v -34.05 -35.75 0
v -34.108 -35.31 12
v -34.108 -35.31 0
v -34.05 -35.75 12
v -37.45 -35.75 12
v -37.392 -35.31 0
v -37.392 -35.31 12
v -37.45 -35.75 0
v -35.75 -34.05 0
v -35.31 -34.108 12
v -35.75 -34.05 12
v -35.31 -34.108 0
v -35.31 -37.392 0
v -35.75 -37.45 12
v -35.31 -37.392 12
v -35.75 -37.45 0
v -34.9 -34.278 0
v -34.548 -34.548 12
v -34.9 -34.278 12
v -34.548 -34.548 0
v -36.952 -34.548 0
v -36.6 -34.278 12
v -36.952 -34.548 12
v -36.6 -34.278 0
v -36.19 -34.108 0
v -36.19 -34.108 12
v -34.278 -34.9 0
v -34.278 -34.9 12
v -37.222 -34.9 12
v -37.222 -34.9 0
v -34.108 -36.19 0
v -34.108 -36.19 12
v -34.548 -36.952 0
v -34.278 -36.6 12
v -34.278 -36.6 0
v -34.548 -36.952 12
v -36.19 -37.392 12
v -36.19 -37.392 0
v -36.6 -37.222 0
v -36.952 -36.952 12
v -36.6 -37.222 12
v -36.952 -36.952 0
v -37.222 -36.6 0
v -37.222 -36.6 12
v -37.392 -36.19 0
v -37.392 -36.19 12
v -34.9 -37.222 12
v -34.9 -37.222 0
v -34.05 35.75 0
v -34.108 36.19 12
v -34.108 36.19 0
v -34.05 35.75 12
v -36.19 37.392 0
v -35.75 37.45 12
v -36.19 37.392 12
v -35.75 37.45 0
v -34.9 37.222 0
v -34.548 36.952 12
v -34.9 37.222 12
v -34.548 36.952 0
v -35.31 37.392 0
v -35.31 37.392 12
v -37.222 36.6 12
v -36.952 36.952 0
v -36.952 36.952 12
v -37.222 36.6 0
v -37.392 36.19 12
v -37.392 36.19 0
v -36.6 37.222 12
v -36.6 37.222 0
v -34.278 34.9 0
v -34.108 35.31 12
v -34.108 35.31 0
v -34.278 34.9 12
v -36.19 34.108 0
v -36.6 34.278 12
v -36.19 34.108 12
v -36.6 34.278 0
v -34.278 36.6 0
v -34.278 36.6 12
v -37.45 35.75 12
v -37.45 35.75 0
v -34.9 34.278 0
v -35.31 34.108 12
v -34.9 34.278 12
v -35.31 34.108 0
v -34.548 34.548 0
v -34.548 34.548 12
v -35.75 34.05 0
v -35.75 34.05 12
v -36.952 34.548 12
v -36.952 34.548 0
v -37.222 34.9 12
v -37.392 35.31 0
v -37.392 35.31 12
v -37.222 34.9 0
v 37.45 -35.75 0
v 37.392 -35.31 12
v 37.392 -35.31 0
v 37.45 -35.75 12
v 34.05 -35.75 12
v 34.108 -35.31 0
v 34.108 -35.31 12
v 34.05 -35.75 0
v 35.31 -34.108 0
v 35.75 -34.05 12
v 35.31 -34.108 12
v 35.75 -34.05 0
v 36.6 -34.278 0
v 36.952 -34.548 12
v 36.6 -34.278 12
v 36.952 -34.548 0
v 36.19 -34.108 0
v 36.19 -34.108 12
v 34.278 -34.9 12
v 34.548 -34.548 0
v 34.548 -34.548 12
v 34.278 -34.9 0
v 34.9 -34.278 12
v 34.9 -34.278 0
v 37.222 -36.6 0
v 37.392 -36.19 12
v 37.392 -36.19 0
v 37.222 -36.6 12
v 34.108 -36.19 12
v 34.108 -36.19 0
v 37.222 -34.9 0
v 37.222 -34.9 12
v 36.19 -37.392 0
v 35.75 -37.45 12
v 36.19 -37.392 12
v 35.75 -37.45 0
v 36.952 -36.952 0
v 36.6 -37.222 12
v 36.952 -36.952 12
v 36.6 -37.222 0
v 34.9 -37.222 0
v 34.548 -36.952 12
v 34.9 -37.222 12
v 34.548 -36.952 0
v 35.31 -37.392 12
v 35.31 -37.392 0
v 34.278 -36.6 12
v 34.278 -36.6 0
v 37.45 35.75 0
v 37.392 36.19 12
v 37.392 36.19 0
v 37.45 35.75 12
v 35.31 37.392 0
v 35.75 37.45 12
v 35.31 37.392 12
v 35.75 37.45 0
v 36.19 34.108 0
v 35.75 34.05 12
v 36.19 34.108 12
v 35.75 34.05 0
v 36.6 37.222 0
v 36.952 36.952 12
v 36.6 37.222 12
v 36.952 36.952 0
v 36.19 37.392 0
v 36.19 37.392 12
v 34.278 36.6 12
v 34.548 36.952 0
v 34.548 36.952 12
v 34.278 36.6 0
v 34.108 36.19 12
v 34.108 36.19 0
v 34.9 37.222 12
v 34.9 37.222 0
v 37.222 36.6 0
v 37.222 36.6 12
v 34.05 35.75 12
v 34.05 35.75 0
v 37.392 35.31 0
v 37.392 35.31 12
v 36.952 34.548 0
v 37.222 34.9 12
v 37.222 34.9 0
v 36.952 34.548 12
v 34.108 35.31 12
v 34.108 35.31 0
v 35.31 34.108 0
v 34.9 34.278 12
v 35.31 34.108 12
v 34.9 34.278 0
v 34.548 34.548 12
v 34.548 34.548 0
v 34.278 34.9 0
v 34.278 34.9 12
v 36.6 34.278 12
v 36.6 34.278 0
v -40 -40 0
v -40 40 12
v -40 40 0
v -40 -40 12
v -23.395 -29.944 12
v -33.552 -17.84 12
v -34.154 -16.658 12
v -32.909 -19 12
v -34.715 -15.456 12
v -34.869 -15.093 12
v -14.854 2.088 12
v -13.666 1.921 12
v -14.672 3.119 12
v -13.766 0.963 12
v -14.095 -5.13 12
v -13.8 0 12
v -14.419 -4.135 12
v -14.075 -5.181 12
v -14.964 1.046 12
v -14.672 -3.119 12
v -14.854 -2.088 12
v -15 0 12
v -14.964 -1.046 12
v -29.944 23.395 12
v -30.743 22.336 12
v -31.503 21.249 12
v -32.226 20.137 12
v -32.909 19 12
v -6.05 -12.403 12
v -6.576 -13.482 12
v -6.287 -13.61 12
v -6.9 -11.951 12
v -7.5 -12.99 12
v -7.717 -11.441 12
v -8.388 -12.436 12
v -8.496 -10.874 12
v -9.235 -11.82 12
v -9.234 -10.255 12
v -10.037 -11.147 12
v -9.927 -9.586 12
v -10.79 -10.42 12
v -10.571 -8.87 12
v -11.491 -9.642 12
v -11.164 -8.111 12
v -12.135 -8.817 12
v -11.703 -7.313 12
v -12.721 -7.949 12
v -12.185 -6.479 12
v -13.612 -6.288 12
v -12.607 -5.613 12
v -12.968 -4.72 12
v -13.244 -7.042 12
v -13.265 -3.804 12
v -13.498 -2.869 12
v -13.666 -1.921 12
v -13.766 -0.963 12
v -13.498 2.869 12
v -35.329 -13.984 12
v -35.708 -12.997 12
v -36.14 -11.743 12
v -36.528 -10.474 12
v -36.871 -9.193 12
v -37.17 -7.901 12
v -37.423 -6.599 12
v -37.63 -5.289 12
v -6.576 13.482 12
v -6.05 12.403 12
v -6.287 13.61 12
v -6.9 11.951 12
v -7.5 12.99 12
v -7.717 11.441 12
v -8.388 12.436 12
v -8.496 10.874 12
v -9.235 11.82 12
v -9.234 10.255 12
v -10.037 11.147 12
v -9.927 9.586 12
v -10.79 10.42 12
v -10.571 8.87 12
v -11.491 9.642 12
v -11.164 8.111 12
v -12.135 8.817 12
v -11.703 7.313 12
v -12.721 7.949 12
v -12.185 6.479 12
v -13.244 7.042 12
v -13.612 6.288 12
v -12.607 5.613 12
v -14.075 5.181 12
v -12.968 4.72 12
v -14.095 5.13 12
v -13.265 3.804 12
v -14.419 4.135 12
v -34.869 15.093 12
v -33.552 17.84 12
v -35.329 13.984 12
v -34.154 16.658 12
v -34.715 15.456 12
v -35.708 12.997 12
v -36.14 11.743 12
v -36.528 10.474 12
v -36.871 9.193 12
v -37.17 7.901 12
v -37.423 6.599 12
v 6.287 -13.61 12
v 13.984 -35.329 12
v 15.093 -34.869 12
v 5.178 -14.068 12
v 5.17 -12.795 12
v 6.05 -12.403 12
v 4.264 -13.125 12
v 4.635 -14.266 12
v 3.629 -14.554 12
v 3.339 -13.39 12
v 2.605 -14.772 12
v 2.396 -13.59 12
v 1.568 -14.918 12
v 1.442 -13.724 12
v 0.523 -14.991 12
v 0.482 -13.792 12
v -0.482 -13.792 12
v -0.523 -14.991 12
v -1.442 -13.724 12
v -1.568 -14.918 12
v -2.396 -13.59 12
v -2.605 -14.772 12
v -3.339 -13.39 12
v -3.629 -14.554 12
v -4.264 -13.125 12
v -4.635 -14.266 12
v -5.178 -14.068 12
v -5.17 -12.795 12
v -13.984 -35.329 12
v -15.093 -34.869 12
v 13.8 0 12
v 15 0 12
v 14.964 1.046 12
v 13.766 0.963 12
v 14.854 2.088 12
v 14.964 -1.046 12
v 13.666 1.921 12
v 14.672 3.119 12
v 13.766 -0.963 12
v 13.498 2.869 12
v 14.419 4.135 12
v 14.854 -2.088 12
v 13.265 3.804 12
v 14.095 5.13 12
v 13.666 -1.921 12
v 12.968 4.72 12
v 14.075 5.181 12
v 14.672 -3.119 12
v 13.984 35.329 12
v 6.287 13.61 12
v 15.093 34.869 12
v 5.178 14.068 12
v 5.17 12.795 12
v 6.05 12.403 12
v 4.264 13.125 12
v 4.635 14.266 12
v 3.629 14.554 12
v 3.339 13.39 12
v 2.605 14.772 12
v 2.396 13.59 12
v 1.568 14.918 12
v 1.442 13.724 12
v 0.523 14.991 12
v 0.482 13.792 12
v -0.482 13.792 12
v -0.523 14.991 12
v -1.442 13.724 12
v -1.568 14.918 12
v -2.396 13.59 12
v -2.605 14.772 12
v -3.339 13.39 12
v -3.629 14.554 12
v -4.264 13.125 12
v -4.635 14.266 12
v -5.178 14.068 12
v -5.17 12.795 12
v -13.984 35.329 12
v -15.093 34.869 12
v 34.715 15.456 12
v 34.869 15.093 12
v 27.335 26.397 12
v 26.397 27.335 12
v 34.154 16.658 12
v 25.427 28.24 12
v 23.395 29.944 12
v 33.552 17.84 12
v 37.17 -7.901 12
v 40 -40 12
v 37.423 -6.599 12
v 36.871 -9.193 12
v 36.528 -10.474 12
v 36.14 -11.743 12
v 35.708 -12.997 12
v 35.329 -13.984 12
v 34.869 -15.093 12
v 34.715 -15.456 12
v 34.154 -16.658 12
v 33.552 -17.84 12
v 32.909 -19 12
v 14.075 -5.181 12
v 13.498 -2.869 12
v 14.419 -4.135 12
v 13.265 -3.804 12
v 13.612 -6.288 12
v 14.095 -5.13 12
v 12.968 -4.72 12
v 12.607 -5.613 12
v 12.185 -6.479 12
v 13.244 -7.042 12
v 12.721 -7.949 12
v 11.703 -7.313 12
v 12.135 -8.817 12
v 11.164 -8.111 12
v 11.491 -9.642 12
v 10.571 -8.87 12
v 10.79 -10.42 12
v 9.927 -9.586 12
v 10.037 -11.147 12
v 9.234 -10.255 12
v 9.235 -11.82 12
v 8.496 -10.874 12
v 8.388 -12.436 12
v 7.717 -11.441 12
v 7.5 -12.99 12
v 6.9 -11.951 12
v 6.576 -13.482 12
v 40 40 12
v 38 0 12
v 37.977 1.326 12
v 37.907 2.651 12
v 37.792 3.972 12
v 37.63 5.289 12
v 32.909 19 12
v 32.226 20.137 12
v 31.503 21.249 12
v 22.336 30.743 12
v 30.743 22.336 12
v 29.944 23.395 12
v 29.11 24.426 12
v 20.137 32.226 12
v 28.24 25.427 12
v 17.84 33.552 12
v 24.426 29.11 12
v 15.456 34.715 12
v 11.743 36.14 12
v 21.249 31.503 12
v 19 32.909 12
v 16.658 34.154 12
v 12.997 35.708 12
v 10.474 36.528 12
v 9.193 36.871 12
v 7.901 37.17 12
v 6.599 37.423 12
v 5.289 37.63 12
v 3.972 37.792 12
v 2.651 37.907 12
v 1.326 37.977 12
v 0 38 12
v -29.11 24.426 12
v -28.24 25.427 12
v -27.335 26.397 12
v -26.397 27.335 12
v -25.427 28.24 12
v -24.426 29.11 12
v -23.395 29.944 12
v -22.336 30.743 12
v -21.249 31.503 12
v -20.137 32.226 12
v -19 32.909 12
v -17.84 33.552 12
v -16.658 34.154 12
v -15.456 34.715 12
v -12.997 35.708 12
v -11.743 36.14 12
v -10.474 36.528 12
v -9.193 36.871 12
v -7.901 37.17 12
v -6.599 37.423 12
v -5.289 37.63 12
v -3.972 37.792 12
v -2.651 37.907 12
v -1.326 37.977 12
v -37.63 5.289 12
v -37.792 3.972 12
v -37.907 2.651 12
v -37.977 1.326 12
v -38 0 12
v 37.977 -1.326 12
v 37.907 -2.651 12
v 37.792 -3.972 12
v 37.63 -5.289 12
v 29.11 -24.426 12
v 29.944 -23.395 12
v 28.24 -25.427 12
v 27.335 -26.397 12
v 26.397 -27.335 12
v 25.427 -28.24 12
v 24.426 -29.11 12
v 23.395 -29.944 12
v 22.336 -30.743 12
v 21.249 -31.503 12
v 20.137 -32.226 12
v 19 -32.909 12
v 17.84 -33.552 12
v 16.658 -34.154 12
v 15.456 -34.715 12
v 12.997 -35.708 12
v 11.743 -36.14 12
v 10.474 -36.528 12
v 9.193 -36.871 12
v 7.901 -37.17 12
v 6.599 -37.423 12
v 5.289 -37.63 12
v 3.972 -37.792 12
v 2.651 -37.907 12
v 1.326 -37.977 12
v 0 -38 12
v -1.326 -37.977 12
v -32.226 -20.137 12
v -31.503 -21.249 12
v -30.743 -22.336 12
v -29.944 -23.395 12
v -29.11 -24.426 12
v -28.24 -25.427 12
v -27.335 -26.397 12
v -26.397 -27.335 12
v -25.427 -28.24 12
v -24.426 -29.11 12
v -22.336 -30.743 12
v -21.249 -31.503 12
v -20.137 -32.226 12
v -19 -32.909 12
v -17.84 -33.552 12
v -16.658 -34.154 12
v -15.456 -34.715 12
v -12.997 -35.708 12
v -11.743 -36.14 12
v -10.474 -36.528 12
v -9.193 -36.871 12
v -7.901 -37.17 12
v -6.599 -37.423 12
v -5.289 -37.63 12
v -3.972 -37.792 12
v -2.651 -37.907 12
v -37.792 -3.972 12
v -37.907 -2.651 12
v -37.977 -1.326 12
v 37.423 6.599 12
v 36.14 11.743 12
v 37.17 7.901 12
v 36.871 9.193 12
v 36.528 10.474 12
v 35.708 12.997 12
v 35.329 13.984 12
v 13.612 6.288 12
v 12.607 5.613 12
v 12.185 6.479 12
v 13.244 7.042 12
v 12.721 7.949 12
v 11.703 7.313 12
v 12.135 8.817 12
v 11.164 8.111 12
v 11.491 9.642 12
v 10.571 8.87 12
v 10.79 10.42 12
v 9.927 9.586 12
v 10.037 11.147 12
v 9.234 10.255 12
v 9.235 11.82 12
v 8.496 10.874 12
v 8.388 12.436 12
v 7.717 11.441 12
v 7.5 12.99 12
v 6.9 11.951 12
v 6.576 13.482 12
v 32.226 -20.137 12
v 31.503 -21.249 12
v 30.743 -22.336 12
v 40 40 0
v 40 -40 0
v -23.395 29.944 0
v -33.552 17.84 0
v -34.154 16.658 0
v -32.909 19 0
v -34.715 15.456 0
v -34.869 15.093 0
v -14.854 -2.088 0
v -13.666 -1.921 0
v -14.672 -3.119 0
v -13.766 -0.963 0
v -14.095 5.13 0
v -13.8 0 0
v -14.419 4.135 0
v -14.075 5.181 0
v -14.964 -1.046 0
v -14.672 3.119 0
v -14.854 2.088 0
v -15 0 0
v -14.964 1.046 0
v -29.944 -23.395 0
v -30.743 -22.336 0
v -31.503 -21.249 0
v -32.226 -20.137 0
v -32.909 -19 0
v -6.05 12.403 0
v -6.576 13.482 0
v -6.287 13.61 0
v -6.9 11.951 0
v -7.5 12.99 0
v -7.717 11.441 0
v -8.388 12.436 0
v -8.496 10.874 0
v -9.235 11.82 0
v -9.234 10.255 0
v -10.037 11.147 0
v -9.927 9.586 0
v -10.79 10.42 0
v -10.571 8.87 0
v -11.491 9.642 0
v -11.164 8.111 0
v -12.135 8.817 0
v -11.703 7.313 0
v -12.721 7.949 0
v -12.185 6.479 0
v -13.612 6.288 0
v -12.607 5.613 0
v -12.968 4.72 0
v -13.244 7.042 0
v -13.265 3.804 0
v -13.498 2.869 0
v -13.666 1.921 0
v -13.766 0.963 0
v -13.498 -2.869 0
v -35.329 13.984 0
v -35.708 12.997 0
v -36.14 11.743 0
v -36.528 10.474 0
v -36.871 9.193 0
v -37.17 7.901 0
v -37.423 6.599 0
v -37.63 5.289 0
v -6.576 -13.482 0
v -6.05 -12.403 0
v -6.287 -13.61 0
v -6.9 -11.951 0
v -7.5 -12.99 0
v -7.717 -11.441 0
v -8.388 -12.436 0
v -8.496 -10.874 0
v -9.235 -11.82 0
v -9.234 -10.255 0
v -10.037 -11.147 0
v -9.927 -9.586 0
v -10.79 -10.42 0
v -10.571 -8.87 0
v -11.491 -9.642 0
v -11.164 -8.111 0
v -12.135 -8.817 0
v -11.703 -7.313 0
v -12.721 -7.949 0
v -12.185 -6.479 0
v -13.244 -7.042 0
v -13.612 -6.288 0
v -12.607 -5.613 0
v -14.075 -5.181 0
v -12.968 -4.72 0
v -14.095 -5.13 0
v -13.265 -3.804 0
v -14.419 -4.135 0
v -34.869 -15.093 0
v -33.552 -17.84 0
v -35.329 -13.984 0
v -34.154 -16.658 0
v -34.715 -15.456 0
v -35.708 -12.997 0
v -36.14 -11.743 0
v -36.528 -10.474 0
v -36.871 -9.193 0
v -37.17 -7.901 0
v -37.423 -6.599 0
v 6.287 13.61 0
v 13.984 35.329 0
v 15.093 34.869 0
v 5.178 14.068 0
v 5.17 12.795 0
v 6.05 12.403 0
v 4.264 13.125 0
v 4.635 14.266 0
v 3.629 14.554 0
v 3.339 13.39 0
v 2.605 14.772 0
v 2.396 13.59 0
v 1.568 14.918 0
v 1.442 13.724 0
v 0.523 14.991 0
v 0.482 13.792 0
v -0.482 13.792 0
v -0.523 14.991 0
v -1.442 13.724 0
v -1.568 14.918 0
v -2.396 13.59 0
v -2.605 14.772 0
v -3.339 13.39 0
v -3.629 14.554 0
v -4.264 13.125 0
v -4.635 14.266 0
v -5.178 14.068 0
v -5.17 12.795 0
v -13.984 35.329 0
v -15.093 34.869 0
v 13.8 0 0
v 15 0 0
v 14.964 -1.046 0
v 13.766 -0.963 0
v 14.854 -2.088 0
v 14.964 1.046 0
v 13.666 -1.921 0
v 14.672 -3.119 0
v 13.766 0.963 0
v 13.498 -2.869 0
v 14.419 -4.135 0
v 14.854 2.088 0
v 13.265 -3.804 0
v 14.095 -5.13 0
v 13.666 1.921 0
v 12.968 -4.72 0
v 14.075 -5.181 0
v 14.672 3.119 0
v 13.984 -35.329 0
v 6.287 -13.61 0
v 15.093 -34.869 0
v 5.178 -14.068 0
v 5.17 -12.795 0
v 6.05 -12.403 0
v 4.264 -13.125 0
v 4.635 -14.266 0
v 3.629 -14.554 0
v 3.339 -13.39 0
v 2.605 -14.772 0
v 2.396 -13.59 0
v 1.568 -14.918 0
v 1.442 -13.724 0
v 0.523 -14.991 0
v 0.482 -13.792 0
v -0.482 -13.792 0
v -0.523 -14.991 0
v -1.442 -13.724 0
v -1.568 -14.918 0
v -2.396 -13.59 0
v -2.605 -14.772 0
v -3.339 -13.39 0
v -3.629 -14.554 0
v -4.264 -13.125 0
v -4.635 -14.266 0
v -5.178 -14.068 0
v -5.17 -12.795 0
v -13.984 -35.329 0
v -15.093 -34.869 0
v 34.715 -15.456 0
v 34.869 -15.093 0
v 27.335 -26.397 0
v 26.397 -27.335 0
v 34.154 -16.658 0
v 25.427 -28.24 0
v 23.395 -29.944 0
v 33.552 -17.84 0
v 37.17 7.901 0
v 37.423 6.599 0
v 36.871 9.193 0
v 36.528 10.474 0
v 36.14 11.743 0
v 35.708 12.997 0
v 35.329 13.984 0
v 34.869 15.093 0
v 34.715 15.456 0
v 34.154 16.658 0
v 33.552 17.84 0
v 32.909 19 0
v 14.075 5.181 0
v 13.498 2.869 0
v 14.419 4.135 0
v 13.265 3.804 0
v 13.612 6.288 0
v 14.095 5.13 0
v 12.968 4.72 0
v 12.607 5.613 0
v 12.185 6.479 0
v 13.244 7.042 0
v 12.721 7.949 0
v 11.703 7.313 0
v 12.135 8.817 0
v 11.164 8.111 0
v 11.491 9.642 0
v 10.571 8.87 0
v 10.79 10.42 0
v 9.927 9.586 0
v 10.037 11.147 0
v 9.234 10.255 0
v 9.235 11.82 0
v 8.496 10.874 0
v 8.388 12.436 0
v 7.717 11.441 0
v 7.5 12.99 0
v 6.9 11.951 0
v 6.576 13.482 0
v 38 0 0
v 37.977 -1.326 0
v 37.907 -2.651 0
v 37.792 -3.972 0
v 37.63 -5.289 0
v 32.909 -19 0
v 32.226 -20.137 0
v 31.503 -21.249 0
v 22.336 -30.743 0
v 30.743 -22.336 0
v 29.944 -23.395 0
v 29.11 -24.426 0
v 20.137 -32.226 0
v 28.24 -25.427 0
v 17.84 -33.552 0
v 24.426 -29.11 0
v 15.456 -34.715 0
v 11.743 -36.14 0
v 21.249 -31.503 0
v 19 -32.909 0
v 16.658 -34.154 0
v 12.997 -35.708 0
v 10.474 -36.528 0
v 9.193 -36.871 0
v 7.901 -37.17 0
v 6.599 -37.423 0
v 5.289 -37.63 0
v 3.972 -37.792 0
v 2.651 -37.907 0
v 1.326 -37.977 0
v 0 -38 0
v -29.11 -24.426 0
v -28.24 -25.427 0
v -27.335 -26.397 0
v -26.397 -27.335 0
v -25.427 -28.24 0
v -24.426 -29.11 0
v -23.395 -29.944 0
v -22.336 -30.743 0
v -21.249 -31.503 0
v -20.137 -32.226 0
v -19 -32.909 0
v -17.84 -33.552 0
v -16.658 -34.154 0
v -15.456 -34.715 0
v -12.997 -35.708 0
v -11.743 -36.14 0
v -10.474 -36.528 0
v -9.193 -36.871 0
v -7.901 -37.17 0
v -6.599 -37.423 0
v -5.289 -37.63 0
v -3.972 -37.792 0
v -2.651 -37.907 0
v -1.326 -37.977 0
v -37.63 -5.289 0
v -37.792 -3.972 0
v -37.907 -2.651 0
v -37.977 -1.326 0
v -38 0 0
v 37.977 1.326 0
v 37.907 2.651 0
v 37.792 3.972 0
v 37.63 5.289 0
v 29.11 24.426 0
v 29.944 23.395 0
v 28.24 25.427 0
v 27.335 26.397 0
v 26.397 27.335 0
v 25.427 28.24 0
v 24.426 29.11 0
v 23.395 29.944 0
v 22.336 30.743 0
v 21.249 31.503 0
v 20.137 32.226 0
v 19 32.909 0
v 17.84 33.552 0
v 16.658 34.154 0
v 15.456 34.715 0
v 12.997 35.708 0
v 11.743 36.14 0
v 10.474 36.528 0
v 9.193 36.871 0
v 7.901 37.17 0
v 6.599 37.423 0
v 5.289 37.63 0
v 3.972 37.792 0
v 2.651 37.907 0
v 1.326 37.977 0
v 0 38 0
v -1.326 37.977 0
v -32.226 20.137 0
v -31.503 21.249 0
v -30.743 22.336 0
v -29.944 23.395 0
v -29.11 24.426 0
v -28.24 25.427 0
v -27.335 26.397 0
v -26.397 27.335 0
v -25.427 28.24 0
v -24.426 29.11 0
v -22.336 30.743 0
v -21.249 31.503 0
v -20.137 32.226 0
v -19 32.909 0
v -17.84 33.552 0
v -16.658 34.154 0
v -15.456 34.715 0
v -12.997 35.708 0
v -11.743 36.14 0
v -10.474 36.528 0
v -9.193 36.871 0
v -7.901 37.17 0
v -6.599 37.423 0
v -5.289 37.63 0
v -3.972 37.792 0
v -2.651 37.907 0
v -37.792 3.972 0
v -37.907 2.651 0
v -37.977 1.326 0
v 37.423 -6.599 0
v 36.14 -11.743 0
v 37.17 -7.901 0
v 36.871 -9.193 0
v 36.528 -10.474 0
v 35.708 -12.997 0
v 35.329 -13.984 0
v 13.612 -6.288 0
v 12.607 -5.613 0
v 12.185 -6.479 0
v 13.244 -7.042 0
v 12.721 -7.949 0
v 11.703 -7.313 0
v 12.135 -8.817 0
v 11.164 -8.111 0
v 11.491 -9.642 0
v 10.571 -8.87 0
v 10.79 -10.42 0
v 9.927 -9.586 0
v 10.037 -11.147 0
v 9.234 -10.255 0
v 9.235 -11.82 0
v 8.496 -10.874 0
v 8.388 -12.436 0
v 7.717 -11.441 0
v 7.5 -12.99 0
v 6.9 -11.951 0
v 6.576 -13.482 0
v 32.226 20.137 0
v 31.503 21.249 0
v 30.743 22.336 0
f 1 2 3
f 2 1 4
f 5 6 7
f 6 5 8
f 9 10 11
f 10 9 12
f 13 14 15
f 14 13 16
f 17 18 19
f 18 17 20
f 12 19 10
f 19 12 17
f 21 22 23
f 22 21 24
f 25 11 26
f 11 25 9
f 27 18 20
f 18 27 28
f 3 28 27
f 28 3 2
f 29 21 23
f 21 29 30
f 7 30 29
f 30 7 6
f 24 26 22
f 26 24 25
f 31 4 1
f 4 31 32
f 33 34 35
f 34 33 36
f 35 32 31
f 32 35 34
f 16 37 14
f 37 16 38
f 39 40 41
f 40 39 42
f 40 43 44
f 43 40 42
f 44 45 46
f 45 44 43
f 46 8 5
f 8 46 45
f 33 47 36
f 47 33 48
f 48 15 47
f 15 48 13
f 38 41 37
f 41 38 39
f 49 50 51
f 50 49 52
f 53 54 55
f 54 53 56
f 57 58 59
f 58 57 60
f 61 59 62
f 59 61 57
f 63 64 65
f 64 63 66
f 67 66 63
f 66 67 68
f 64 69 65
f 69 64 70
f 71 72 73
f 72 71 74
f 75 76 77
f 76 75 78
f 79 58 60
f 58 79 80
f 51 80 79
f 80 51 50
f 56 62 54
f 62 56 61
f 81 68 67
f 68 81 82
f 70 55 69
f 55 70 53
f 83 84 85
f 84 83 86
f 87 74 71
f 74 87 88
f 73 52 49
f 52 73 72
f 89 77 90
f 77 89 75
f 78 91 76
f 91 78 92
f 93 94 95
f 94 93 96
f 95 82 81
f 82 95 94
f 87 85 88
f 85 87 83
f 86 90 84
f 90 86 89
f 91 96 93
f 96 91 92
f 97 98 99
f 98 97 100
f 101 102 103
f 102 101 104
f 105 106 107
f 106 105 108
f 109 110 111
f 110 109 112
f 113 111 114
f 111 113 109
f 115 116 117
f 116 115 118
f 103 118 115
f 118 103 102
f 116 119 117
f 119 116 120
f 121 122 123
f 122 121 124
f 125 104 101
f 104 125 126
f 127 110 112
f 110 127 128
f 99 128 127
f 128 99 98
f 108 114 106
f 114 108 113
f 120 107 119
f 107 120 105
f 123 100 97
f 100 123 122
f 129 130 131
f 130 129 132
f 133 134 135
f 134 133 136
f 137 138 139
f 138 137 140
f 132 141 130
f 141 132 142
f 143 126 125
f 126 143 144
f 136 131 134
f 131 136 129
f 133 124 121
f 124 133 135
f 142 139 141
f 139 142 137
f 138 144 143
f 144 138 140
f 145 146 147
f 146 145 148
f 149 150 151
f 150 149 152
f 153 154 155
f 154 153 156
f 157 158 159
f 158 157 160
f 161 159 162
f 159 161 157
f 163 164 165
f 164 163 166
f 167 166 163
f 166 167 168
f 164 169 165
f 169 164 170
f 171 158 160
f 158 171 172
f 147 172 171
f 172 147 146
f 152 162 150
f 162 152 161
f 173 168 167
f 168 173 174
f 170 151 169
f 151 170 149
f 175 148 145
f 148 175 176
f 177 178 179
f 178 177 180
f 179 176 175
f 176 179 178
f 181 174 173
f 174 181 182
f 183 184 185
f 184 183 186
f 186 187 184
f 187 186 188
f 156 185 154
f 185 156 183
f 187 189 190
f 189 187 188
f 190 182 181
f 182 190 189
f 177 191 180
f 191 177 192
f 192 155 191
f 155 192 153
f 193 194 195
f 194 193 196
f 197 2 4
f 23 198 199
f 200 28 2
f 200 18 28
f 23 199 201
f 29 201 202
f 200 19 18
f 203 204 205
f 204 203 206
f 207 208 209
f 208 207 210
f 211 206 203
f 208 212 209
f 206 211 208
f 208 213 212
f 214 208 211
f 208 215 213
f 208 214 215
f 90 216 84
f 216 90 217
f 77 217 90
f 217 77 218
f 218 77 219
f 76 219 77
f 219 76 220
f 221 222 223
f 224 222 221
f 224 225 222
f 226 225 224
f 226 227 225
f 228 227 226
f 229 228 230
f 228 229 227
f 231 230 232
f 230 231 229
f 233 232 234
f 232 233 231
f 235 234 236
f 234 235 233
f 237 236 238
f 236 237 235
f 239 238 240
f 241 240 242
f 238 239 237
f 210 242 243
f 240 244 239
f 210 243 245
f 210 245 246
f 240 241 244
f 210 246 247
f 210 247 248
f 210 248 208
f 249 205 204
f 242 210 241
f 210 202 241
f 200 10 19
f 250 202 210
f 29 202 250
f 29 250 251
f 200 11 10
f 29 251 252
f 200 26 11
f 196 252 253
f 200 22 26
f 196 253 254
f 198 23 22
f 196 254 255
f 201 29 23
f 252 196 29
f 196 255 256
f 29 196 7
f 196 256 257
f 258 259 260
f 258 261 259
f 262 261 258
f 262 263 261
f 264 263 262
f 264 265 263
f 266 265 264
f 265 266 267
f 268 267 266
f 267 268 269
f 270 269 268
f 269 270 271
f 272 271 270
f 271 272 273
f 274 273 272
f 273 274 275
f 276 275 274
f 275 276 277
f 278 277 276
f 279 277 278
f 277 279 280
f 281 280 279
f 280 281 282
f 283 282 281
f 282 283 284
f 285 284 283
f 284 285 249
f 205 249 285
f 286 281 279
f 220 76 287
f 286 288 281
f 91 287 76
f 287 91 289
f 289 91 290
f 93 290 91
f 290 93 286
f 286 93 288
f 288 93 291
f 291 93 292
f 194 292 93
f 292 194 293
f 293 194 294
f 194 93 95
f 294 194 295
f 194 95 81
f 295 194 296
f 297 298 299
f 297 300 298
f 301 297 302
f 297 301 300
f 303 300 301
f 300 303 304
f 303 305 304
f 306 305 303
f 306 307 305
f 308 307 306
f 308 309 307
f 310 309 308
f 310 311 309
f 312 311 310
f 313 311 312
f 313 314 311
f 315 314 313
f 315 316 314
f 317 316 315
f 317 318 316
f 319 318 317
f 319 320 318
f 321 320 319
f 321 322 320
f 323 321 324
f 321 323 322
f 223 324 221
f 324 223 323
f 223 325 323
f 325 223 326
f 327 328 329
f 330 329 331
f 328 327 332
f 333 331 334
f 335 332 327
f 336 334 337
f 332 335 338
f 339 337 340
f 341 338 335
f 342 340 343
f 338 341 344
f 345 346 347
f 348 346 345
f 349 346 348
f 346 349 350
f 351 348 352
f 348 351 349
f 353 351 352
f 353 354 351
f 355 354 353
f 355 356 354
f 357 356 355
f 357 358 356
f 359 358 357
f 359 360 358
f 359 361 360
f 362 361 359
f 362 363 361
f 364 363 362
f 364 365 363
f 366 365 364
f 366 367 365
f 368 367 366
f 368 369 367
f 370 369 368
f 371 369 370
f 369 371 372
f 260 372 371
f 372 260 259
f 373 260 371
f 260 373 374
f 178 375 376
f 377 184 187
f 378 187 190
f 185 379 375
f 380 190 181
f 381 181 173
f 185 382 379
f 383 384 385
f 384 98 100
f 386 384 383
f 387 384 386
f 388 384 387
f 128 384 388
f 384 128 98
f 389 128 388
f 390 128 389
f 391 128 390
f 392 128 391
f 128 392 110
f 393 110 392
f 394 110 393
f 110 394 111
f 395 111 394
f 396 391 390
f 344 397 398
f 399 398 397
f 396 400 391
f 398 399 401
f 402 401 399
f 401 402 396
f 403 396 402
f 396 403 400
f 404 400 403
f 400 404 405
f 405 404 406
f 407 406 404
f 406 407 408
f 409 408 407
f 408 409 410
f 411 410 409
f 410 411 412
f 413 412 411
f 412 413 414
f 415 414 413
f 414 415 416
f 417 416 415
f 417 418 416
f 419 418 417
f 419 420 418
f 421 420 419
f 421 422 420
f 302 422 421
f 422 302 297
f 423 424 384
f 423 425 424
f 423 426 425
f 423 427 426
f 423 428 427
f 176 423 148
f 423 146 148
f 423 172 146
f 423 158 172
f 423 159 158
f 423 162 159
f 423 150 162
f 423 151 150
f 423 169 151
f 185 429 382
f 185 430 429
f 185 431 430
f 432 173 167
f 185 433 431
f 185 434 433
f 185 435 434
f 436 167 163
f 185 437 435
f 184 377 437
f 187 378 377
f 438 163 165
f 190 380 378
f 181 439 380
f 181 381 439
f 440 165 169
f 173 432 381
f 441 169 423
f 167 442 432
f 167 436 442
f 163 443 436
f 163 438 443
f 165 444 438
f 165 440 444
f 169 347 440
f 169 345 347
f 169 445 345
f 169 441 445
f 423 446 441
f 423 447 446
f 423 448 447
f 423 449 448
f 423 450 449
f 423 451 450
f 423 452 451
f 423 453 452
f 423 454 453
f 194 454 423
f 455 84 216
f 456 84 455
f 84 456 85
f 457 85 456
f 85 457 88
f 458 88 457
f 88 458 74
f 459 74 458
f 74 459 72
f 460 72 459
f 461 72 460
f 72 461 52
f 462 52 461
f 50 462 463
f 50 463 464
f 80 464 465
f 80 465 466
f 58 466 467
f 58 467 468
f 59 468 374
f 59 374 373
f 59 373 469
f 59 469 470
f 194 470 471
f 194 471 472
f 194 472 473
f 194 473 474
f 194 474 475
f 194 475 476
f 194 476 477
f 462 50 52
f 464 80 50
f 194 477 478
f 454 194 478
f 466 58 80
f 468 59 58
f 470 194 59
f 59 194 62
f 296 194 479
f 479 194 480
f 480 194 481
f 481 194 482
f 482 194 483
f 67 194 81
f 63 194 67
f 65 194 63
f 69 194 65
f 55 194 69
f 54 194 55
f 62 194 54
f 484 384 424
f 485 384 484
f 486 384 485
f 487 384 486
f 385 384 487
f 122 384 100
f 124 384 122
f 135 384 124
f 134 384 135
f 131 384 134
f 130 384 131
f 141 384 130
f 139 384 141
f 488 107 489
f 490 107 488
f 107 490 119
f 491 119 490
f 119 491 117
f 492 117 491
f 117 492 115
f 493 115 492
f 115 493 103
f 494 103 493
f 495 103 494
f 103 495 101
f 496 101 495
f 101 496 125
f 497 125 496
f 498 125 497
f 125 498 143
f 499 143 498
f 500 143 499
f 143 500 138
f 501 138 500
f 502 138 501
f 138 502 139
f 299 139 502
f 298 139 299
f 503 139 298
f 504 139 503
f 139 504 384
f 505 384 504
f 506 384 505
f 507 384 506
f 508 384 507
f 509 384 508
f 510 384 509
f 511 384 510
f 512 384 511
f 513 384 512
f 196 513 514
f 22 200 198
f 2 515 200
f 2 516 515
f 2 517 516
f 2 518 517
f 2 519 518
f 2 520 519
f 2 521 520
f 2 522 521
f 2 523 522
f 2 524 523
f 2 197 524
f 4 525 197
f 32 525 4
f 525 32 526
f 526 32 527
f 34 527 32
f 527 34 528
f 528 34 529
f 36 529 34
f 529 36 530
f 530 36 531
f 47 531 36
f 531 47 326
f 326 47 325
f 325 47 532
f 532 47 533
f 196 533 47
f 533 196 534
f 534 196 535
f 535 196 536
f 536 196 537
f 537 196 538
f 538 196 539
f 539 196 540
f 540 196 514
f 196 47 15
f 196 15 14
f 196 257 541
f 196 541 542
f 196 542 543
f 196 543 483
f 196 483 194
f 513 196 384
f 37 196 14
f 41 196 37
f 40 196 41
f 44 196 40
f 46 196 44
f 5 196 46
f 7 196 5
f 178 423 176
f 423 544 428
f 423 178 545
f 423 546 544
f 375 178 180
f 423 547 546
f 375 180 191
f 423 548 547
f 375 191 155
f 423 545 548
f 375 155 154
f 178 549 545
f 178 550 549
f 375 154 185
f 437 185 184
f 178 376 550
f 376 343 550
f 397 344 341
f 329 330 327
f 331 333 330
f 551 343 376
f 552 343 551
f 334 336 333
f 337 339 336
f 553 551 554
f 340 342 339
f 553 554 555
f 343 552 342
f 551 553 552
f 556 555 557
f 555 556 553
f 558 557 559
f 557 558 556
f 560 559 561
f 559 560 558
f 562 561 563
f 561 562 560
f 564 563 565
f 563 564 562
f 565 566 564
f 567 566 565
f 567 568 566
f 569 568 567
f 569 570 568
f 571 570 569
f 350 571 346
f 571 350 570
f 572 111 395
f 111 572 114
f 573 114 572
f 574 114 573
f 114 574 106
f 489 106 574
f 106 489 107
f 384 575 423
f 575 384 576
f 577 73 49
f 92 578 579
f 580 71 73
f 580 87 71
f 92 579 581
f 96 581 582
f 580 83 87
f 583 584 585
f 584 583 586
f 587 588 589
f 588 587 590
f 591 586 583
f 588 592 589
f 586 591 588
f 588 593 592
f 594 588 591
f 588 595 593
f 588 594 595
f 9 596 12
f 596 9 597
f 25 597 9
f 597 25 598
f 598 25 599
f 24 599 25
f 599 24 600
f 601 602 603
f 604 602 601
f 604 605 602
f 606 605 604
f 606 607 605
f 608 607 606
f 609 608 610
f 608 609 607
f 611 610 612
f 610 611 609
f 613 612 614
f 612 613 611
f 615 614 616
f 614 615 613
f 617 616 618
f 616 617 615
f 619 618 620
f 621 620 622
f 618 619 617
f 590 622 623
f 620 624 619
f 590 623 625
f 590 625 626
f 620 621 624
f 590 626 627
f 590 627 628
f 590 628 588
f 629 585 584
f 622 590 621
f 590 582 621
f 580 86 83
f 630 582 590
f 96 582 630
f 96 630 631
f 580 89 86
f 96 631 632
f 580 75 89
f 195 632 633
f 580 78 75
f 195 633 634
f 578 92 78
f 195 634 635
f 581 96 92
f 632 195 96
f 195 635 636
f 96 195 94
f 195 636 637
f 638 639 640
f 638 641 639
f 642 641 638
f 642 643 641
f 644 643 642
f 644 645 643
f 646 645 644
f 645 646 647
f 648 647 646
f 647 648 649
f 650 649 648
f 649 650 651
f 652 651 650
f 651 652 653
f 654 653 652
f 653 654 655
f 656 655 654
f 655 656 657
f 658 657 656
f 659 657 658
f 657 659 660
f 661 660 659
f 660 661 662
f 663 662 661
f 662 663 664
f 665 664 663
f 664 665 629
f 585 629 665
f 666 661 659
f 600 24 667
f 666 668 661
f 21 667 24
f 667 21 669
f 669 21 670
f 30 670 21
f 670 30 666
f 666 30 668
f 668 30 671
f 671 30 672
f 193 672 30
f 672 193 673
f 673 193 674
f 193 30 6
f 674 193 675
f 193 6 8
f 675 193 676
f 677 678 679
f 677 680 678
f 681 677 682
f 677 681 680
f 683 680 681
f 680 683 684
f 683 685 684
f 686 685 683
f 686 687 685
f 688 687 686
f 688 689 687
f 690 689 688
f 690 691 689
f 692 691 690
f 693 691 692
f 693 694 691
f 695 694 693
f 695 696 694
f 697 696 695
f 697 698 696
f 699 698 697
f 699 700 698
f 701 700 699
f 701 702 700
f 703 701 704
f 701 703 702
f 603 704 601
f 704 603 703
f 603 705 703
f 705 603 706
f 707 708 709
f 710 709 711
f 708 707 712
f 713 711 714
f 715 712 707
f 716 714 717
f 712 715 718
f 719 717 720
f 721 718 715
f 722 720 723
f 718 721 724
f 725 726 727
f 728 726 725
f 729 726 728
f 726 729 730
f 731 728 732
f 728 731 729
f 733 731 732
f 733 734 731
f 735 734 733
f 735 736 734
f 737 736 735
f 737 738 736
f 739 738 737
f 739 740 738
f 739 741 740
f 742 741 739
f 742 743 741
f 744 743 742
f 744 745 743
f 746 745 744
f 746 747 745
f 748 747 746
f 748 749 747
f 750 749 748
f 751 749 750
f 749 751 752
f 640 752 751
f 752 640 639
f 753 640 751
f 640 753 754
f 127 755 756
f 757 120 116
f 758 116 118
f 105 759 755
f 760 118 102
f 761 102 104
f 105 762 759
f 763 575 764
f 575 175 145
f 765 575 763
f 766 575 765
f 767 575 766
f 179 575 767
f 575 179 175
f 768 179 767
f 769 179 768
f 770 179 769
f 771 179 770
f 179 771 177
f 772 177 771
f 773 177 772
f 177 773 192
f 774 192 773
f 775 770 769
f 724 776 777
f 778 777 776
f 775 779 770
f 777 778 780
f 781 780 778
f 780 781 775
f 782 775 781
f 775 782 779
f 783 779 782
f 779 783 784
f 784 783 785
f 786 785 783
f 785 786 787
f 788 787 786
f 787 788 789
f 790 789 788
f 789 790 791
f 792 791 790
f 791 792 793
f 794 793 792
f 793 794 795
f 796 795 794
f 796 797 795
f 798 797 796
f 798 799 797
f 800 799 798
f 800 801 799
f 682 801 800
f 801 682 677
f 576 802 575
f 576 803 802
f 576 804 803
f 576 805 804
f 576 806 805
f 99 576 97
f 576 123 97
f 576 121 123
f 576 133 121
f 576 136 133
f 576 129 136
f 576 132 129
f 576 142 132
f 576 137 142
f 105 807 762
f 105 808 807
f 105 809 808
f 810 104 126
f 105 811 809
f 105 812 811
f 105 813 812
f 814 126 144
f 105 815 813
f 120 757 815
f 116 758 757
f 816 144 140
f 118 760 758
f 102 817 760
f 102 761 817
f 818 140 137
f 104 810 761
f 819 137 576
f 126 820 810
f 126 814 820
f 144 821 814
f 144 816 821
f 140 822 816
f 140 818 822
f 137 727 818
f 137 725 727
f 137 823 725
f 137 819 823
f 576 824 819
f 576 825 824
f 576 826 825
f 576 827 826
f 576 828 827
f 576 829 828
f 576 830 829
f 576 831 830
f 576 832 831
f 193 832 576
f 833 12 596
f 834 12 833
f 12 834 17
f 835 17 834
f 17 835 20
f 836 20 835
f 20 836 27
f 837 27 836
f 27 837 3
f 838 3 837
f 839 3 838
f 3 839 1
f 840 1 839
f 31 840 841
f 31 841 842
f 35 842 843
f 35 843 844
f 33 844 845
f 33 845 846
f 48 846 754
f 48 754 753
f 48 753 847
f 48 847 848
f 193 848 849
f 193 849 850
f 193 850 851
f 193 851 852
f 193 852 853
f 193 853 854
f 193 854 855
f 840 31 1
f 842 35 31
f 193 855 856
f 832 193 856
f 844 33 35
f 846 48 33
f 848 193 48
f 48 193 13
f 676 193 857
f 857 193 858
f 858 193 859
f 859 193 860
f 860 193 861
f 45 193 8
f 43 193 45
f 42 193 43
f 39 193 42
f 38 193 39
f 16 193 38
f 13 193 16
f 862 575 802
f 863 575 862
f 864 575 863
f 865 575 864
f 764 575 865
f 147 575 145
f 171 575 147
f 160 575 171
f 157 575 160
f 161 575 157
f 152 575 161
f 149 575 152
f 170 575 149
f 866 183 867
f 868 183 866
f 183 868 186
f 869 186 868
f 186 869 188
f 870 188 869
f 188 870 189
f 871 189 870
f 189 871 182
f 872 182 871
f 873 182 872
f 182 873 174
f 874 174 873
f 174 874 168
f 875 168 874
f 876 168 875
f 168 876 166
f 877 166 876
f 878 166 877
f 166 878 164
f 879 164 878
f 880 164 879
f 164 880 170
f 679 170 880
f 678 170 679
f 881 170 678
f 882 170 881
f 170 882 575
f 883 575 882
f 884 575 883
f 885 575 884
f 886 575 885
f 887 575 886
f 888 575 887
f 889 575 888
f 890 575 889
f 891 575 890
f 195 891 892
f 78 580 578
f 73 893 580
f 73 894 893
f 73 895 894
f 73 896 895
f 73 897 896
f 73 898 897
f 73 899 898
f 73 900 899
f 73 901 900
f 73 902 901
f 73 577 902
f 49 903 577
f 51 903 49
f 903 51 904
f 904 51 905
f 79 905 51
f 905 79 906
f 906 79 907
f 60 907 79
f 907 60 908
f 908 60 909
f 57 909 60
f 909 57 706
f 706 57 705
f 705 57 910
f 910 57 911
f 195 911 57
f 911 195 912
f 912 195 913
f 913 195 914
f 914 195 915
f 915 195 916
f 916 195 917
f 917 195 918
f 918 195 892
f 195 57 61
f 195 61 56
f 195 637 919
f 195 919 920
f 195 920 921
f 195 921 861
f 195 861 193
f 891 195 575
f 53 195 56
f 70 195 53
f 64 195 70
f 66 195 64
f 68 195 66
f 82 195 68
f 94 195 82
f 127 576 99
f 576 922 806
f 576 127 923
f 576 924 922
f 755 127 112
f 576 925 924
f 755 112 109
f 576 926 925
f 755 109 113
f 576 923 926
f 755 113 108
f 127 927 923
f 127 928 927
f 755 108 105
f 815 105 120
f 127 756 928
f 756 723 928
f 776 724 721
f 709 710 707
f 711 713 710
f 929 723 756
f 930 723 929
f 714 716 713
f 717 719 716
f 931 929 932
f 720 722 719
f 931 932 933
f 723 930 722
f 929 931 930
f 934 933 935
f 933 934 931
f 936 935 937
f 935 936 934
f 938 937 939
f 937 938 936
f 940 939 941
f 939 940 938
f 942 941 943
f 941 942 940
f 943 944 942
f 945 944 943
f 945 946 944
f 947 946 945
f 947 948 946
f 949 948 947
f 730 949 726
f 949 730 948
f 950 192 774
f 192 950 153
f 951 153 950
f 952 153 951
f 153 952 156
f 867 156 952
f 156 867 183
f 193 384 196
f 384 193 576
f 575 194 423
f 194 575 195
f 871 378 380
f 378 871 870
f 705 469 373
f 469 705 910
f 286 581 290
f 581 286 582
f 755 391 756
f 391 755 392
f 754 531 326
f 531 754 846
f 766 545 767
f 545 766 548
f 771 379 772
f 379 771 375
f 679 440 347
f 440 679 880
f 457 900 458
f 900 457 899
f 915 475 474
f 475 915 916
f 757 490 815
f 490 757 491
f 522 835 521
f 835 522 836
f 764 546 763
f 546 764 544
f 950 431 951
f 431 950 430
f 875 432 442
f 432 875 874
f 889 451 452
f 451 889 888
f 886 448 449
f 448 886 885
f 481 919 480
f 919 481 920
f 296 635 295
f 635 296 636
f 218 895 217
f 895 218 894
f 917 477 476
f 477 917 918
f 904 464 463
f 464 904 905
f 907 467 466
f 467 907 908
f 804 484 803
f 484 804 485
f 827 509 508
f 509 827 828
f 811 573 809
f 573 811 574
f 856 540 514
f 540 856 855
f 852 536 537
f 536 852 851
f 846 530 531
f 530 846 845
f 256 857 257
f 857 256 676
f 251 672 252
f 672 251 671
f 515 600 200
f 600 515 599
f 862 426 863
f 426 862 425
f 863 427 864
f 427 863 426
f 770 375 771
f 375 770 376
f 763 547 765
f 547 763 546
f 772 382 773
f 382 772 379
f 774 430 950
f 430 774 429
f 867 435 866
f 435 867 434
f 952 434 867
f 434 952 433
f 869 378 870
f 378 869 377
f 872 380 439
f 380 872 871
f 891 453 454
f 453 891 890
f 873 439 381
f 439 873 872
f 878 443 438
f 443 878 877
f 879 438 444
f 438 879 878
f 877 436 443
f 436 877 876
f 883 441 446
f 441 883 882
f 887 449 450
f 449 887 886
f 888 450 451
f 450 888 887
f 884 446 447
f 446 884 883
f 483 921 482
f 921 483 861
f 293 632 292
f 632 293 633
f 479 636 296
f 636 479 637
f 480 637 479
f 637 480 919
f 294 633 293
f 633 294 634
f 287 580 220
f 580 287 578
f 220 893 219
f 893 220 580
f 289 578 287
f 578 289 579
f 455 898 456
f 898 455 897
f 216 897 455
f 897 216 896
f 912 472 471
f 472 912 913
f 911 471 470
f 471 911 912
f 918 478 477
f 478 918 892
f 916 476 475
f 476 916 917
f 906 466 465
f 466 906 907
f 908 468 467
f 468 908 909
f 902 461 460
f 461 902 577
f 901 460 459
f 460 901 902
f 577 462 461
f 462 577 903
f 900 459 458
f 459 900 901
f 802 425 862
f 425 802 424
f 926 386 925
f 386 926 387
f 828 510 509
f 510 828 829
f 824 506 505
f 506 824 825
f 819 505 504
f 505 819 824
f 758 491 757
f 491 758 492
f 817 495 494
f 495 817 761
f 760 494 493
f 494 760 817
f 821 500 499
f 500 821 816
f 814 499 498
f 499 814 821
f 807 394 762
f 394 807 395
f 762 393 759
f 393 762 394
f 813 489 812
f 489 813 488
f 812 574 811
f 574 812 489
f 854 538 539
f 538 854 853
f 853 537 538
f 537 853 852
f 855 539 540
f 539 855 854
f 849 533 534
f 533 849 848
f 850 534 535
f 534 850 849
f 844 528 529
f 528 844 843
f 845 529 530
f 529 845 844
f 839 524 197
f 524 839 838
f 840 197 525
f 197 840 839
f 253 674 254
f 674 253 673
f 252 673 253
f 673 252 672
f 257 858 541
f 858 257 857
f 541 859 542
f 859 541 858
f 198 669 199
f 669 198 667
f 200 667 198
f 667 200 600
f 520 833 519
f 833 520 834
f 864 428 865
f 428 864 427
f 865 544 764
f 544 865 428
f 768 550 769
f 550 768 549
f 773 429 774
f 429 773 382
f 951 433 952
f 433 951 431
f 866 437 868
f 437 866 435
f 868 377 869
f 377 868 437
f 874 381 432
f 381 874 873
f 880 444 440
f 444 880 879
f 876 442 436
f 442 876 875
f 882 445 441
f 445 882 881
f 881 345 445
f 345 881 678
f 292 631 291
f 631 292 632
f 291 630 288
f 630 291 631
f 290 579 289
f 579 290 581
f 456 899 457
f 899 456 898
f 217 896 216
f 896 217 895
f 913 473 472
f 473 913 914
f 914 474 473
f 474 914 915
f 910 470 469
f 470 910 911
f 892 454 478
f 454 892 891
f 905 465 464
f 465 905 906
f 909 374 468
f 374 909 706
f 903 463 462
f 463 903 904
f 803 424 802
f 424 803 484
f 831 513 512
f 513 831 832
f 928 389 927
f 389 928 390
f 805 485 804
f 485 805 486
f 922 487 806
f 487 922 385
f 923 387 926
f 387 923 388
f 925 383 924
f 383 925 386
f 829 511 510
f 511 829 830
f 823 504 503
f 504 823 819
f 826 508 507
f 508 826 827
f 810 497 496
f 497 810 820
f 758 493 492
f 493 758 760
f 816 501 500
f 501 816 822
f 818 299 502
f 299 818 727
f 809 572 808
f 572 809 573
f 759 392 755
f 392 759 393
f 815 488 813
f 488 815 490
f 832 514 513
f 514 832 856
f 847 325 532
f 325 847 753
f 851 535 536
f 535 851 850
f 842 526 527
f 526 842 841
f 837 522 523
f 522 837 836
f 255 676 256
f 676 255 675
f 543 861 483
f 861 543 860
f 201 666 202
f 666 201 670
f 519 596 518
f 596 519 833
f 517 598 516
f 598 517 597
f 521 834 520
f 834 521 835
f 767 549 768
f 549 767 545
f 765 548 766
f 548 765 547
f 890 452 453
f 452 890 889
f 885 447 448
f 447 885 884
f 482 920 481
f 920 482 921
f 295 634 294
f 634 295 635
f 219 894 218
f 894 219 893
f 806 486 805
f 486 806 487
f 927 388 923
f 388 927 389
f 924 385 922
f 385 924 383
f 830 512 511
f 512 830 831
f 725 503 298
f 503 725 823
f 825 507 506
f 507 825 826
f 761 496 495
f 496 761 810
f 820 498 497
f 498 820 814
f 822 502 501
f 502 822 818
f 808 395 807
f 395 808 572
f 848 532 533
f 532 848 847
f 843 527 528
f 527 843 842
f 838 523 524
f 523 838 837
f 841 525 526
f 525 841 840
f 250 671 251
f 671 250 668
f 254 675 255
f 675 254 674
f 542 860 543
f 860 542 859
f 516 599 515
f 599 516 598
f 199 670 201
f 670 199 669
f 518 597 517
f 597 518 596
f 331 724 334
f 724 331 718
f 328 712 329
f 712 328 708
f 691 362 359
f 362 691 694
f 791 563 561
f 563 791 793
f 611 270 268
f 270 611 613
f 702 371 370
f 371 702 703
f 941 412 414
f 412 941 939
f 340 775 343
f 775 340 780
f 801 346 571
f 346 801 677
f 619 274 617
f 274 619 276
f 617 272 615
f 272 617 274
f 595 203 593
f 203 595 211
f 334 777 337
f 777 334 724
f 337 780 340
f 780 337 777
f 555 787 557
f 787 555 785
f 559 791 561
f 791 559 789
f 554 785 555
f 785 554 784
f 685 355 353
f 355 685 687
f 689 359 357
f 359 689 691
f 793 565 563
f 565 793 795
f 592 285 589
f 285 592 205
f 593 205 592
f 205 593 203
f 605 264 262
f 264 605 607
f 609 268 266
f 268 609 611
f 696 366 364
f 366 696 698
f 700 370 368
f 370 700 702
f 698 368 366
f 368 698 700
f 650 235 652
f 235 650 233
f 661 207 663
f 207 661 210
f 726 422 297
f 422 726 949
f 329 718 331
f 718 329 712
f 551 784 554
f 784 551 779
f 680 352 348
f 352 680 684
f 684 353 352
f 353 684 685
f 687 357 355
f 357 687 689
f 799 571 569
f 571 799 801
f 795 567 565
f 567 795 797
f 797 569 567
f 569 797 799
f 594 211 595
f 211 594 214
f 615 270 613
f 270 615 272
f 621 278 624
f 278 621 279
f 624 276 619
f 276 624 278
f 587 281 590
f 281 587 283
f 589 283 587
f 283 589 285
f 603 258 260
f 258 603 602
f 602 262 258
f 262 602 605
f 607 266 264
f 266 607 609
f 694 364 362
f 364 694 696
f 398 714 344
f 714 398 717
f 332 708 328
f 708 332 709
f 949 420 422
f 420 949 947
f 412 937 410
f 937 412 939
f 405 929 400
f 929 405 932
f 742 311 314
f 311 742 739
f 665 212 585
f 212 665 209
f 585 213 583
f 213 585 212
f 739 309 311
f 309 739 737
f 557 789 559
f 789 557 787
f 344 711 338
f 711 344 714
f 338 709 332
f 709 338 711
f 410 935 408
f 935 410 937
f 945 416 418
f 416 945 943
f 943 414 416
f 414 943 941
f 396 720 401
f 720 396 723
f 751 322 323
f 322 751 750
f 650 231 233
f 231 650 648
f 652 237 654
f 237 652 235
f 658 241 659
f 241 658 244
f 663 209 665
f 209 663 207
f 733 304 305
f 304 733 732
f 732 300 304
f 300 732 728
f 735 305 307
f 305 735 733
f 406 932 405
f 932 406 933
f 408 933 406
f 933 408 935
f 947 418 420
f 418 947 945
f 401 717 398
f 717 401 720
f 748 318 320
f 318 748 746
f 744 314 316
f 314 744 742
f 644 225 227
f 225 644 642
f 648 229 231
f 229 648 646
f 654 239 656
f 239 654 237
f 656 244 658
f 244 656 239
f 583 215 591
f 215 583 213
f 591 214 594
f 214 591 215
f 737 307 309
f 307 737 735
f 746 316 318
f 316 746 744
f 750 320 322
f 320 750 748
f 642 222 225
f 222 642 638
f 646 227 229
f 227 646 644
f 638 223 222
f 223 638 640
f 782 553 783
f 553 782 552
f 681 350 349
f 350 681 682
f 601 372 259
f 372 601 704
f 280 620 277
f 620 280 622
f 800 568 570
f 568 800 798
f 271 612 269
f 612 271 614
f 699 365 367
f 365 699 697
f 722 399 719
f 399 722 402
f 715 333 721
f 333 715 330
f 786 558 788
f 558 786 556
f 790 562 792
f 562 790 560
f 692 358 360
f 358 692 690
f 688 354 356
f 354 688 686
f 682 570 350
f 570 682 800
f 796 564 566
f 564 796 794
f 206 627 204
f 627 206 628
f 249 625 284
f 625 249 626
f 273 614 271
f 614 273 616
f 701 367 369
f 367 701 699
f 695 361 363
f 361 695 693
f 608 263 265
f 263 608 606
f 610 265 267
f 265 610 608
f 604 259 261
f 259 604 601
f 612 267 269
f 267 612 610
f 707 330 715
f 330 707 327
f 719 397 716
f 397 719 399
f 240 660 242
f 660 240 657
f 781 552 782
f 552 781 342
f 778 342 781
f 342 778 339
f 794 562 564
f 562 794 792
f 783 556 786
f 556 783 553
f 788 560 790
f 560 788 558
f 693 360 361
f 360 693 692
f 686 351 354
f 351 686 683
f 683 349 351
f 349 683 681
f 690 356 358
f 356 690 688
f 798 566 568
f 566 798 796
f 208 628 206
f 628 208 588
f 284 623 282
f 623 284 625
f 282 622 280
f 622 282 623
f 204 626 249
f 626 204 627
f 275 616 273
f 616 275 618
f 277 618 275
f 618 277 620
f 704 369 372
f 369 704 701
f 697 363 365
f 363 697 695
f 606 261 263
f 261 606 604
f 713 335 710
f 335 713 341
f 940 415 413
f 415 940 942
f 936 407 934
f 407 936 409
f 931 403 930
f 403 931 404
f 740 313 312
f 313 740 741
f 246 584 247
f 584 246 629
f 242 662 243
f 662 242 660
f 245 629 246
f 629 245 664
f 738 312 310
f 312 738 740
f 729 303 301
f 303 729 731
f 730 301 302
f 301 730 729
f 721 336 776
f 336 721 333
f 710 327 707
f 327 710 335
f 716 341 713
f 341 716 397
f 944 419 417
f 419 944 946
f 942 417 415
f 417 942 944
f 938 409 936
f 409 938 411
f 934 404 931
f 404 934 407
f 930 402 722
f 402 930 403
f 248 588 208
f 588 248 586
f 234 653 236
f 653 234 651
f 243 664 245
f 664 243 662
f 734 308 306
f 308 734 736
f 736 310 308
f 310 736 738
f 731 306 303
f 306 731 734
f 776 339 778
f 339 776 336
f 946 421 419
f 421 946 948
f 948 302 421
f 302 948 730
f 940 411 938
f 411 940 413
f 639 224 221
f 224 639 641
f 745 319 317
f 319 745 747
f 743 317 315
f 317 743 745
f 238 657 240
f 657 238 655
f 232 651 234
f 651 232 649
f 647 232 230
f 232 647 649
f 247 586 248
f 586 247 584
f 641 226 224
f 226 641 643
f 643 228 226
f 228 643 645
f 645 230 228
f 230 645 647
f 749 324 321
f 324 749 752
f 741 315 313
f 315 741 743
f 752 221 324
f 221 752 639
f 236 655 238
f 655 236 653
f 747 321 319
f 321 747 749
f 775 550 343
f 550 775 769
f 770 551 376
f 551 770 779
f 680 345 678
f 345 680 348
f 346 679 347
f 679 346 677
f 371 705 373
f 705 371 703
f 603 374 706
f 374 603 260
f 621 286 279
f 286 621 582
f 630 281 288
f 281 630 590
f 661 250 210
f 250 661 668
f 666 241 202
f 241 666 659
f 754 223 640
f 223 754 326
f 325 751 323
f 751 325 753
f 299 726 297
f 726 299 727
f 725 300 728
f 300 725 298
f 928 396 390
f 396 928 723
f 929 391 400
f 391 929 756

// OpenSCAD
// =====================================================================
//  Window vent: spacer with straightening vanes between two stacked fans
//  (optional add-on). Parametric OpenSCAD model (tested with OpenSCAD 2021.01).
//
//  * Two 80 mm fans in series in the same duct (push-pull) give about twice
//    the pressure of one. The first fan's air leaves it spinning, which takes
//    away part of what the second fan can add: thin radial vanes in this
//    spacer straighten it, and the spacing keeps the two rotors apart (less
//    of the hum or beat of two rotors running close together).
//  * A square block the size of the fans, with their bore, a small hub ring
//    behind the motors, and radial vanes from the hub to the wall. Both faces
//    are flat, like the housing's fan plate.
//  * The fan bolts go through the whole stack: outer fan, spacer, inner fan,
//    into the fan plate's nuts. With the default 12 mm spacer: M3 x 70 (two
//    25 mm fans + 12 + the 6 mm fan plate = 68), instead of the M3 x 35.
//  * It prints as modelled, either face on the bed, no supports: every wall
//    and vane is vertical.
//
//  Coordinates: z along the airflow, z = 0 and z = length on the two faces.
// =====================================================================

/* [Part to show or export] */
part = "spacer";    // [spacer, assembly]

/* [Spacer] */
length   = 12;      // along the airflow (the fans' spacing)
vanes    = 8;       // radial vanes; short vanes straighten less, so more of them
vane_t   = 1.2;     // vane thickness (three 0.4 mm lines)
vane_rot = 22.5;    // turns the set of vanes: none horizontal or vertical
hub_d    = 30;      // hub ring behind the fans' motors (their hubs block that area anyway)
hub_t    = 1.2;     // hub ring wall

/* [Fan] */
fan      = 80;      // fan frame size
fan_t    = 25;      // fan frame depth (assembly view only)
fan_hole = 71.5;    // fan screw spacing
bore     = 76;      // the fans' blade circle (the housing's duct is 74)
hole_d   = 3.4;     // M3 clearance

eps = 0.01;

module spacer() {
    difference() {
        translate([-fan / 2, -fan / 2, 0]) cube([fan, fan, length]);
        translate([0, 0, -1]) cylinder(d = bore, h = length + 2, $fn = 180);
        for (dx = [-1, 1], dy = [-1, 1])
            translate([dx * fan_hole / 2, dy * fan_hole / 2, -1]) cylinder(d = hole_d, h = length + 2, $fn = 24);
    }
    difference() {                                   // hub ring, open at both ends
        cylinder(d = hub_d, h = length, $fn = 90);
        translate([0, 0, -1]) cylinder(d = hub_d - 2 * hub_t, h = length + 2, $fn = 90);
    }
    for (i = [0 : vanes - 1])                        // vanes: from inside the hub ring into the outer wall
        rotate(vane_rot + i * 360 / vanes)
            translate([hub_d / 2 - hub_t / 2, -vane_t / 2, 0]) cube([(bore - hub_d + hub_t) / 2 + 0.5, vane_t, length]);
}

// the stack: inner fan (on the housing's fan plate, below), spacer, outer fan, and the four M3 x 70
module fan_dummy() {
    color([0.2, 0.2, 0.22]) difference() {
        translate([-fan / 2, -fan / 2, 0]) cube([fan, fan, fan_t]);
        translate([0, 0, -1]) cylinder(d = bore, h = fan_t + 2, $fn = 90);
        for (dx = [-1, 1], dy = [-1, 1])
            translate([dx * fan_hole / 2, dy * fan_hole / 2, -1]) cylinder(d = hole_d, h = fan_t + 2, $fn = 24);
    }
}

module assembly() {
    translate([0, 0, -fan_t]) fan_dummy();
    color([0.95, 0.6, 0.2]) spacer();
    translate([0, 0, length]) fan_dummy();
    top = length + fan_t;
    for (dx = [-1, 1], dy = [-1, 1]) color([0.7, 0.7, 0.72]) translate([dx * fan_hole / 2, dy * fan_hole / 2, 0]) {
        translate([0, 0, top]) cylinder(d = 5.5, h = 3, $fn = 24);          // socket head
        translate([0, 0, top - 70]) cylinder(d = 3, h = 70, $fn = 16);      // M3 x 70, to the fan plate's nuts
    }
}

if (part == "spacer")   spacer();
if (part == "assembly") assembly();
